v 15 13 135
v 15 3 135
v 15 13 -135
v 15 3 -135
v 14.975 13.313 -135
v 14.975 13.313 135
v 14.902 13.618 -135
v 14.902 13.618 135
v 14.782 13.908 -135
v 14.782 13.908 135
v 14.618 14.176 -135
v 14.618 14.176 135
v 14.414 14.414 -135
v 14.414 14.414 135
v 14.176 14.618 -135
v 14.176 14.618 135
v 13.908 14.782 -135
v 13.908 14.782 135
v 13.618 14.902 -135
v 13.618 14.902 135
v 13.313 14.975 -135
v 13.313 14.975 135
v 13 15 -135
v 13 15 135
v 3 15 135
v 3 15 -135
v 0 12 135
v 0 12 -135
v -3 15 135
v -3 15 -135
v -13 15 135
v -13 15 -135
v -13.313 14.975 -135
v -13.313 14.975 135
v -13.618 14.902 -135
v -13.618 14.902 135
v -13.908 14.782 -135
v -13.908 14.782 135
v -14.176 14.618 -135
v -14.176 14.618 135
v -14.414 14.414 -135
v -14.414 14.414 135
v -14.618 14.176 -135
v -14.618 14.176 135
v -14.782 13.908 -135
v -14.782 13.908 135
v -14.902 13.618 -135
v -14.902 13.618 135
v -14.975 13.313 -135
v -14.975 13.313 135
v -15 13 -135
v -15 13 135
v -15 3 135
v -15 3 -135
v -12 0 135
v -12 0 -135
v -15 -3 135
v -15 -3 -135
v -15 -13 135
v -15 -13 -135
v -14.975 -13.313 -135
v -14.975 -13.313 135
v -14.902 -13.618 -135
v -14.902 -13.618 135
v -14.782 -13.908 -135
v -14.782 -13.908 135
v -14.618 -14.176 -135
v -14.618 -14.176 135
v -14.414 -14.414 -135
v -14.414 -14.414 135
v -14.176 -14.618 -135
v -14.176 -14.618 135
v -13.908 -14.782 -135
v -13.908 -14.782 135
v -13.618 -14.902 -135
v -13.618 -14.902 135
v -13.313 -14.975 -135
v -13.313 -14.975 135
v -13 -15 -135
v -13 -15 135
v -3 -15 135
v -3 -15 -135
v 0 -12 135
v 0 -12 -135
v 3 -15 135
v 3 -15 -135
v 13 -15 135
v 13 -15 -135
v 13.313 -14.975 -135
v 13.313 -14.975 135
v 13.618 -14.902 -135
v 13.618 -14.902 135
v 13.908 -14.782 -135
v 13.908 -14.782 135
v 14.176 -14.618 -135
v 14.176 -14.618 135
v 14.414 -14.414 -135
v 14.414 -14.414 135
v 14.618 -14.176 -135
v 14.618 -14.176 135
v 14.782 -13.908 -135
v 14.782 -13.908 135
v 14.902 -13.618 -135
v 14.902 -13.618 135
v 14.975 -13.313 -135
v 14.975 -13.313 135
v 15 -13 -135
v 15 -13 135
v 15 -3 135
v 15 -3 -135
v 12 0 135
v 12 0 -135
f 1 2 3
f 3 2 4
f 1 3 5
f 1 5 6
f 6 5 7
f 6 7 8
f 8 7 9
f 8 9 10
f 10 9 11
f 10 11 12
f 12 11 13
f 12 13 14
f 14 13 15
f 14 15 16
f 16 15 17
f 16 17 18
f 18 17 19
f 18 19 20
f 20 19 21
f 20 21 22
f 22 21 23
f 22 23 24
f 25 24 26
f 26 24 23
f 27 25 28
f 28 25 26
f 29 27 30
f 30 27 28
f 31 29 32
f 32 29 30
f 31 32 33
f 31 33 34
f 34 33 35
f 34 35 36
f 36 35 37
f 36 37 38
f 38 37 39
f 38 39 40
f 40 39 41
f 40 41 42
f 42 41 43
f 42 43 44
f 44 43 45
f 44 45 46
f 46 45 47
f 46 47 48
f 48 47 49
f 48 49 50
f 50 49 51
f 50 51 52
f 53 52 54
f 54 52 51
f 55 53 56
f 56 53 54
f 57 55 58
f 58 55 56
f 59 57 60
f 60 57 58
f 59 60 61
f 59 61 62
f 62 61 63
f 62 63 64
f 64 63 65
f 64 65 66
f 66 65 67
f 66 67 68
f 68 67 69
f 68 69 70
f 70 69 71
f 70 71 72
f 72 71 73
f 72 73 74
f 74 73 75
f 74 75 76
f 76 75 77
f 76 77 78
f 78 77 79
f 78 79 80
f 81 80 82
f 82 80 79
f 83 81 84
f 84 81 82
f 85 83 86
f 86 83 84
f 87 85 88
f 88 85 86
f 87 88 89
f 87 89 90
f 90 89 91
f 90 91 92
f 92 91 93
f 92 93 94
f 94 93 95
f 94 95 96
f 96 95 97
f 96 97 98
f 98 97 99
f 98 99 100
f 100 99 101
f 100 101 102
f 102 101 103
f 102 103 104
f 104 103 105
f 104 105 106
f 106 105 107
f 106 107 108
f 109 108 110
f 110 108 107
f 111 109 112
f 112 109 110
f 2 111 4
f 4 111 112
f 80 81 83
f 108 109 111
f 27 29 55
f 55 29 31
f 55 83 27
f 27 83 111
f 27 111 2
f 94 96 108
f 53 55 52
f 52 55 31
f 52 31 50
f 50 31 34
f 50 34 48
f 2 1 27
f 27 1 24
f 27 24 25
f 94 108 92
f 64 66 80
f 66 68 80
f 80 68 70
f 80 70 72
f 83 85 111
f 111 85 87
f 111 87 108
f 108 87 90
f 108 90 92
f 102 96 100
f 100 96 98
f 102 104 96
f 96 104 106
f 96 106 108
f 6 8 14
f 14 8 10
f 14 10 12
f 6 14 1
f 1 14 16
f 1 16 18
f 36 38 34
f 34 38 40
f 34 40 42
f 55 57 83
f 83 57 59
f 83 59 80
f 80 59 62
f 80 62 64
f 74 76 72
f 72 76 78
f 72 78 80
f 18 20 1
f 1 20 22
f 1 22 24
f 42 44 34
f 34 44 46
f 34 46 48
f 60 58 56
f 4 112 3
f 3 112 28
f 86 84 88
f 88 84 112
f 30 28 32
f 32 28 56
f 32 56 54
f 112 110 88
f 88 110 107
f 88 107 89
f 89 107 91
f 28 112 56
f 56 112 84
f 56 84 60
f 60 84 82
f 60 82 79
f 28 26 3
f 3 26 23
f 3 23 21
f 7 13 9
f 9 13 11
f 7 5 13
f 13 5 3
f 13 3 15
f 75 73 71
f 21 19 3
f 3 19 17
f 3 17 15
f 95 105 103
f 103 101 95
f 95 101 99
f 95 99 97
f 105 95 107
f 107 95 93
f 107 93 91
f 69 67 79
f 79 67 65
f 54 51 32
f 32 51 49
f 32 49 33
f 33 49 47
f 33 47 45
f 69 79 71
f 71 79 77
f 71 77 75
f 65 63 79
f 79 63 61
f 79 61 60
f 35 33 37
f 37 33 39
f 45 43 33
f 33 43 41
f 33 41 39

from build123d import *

# Parameters (mm, degrees)
EXTRUDE_1_DEPTH = 135


with BuildPart() as part:
    # 스케치1 → 보스-돌출1 (new, symmetric)
    with BuildSketch(Plane.XY):
        with BuildLine():
            Line((15, 3), (15, 13))
            ThreePointArc((15, 13), (14.414213562, 14.414213562), (13, 15))
            Line((13, 15), (3, 15))
            Line((3, 15), (0, 12))
            Line((0, 12), (-3, 15))
            Line((-3, 15), (-13, 15))
            ThreePointArc((-13, 15), (-14.414213562, 14.414213562), (-15, 13))
            Line((-15, 13), (-15, 3))
            Line((-15, 3), (-12, 0))
            Line((-12, 0), (-15, -3))
            Line((-15, -3), (-15, -13))
            ThreePointArc((-15, -13), (-14.414213562, -14.414213562), (-13, -15))
            Line((-13, -15), (-3, -15))
            Line((-3, -15), (0, -12))
            Line((0, -12), (3, -15))
            Line((3, -15), (13, -15))
            ThreePointArc((13, -15), (14.414213562, -14.414213562), (15, -13))
            Line((15, -13), (15, -3))
            Line((15, -3), (12, 0))
            Line((12, 0), (15, 3))
        make_face()
    extrude(amount=EXTRUDE_1_DEPTH, both=True)


solid = part.part
